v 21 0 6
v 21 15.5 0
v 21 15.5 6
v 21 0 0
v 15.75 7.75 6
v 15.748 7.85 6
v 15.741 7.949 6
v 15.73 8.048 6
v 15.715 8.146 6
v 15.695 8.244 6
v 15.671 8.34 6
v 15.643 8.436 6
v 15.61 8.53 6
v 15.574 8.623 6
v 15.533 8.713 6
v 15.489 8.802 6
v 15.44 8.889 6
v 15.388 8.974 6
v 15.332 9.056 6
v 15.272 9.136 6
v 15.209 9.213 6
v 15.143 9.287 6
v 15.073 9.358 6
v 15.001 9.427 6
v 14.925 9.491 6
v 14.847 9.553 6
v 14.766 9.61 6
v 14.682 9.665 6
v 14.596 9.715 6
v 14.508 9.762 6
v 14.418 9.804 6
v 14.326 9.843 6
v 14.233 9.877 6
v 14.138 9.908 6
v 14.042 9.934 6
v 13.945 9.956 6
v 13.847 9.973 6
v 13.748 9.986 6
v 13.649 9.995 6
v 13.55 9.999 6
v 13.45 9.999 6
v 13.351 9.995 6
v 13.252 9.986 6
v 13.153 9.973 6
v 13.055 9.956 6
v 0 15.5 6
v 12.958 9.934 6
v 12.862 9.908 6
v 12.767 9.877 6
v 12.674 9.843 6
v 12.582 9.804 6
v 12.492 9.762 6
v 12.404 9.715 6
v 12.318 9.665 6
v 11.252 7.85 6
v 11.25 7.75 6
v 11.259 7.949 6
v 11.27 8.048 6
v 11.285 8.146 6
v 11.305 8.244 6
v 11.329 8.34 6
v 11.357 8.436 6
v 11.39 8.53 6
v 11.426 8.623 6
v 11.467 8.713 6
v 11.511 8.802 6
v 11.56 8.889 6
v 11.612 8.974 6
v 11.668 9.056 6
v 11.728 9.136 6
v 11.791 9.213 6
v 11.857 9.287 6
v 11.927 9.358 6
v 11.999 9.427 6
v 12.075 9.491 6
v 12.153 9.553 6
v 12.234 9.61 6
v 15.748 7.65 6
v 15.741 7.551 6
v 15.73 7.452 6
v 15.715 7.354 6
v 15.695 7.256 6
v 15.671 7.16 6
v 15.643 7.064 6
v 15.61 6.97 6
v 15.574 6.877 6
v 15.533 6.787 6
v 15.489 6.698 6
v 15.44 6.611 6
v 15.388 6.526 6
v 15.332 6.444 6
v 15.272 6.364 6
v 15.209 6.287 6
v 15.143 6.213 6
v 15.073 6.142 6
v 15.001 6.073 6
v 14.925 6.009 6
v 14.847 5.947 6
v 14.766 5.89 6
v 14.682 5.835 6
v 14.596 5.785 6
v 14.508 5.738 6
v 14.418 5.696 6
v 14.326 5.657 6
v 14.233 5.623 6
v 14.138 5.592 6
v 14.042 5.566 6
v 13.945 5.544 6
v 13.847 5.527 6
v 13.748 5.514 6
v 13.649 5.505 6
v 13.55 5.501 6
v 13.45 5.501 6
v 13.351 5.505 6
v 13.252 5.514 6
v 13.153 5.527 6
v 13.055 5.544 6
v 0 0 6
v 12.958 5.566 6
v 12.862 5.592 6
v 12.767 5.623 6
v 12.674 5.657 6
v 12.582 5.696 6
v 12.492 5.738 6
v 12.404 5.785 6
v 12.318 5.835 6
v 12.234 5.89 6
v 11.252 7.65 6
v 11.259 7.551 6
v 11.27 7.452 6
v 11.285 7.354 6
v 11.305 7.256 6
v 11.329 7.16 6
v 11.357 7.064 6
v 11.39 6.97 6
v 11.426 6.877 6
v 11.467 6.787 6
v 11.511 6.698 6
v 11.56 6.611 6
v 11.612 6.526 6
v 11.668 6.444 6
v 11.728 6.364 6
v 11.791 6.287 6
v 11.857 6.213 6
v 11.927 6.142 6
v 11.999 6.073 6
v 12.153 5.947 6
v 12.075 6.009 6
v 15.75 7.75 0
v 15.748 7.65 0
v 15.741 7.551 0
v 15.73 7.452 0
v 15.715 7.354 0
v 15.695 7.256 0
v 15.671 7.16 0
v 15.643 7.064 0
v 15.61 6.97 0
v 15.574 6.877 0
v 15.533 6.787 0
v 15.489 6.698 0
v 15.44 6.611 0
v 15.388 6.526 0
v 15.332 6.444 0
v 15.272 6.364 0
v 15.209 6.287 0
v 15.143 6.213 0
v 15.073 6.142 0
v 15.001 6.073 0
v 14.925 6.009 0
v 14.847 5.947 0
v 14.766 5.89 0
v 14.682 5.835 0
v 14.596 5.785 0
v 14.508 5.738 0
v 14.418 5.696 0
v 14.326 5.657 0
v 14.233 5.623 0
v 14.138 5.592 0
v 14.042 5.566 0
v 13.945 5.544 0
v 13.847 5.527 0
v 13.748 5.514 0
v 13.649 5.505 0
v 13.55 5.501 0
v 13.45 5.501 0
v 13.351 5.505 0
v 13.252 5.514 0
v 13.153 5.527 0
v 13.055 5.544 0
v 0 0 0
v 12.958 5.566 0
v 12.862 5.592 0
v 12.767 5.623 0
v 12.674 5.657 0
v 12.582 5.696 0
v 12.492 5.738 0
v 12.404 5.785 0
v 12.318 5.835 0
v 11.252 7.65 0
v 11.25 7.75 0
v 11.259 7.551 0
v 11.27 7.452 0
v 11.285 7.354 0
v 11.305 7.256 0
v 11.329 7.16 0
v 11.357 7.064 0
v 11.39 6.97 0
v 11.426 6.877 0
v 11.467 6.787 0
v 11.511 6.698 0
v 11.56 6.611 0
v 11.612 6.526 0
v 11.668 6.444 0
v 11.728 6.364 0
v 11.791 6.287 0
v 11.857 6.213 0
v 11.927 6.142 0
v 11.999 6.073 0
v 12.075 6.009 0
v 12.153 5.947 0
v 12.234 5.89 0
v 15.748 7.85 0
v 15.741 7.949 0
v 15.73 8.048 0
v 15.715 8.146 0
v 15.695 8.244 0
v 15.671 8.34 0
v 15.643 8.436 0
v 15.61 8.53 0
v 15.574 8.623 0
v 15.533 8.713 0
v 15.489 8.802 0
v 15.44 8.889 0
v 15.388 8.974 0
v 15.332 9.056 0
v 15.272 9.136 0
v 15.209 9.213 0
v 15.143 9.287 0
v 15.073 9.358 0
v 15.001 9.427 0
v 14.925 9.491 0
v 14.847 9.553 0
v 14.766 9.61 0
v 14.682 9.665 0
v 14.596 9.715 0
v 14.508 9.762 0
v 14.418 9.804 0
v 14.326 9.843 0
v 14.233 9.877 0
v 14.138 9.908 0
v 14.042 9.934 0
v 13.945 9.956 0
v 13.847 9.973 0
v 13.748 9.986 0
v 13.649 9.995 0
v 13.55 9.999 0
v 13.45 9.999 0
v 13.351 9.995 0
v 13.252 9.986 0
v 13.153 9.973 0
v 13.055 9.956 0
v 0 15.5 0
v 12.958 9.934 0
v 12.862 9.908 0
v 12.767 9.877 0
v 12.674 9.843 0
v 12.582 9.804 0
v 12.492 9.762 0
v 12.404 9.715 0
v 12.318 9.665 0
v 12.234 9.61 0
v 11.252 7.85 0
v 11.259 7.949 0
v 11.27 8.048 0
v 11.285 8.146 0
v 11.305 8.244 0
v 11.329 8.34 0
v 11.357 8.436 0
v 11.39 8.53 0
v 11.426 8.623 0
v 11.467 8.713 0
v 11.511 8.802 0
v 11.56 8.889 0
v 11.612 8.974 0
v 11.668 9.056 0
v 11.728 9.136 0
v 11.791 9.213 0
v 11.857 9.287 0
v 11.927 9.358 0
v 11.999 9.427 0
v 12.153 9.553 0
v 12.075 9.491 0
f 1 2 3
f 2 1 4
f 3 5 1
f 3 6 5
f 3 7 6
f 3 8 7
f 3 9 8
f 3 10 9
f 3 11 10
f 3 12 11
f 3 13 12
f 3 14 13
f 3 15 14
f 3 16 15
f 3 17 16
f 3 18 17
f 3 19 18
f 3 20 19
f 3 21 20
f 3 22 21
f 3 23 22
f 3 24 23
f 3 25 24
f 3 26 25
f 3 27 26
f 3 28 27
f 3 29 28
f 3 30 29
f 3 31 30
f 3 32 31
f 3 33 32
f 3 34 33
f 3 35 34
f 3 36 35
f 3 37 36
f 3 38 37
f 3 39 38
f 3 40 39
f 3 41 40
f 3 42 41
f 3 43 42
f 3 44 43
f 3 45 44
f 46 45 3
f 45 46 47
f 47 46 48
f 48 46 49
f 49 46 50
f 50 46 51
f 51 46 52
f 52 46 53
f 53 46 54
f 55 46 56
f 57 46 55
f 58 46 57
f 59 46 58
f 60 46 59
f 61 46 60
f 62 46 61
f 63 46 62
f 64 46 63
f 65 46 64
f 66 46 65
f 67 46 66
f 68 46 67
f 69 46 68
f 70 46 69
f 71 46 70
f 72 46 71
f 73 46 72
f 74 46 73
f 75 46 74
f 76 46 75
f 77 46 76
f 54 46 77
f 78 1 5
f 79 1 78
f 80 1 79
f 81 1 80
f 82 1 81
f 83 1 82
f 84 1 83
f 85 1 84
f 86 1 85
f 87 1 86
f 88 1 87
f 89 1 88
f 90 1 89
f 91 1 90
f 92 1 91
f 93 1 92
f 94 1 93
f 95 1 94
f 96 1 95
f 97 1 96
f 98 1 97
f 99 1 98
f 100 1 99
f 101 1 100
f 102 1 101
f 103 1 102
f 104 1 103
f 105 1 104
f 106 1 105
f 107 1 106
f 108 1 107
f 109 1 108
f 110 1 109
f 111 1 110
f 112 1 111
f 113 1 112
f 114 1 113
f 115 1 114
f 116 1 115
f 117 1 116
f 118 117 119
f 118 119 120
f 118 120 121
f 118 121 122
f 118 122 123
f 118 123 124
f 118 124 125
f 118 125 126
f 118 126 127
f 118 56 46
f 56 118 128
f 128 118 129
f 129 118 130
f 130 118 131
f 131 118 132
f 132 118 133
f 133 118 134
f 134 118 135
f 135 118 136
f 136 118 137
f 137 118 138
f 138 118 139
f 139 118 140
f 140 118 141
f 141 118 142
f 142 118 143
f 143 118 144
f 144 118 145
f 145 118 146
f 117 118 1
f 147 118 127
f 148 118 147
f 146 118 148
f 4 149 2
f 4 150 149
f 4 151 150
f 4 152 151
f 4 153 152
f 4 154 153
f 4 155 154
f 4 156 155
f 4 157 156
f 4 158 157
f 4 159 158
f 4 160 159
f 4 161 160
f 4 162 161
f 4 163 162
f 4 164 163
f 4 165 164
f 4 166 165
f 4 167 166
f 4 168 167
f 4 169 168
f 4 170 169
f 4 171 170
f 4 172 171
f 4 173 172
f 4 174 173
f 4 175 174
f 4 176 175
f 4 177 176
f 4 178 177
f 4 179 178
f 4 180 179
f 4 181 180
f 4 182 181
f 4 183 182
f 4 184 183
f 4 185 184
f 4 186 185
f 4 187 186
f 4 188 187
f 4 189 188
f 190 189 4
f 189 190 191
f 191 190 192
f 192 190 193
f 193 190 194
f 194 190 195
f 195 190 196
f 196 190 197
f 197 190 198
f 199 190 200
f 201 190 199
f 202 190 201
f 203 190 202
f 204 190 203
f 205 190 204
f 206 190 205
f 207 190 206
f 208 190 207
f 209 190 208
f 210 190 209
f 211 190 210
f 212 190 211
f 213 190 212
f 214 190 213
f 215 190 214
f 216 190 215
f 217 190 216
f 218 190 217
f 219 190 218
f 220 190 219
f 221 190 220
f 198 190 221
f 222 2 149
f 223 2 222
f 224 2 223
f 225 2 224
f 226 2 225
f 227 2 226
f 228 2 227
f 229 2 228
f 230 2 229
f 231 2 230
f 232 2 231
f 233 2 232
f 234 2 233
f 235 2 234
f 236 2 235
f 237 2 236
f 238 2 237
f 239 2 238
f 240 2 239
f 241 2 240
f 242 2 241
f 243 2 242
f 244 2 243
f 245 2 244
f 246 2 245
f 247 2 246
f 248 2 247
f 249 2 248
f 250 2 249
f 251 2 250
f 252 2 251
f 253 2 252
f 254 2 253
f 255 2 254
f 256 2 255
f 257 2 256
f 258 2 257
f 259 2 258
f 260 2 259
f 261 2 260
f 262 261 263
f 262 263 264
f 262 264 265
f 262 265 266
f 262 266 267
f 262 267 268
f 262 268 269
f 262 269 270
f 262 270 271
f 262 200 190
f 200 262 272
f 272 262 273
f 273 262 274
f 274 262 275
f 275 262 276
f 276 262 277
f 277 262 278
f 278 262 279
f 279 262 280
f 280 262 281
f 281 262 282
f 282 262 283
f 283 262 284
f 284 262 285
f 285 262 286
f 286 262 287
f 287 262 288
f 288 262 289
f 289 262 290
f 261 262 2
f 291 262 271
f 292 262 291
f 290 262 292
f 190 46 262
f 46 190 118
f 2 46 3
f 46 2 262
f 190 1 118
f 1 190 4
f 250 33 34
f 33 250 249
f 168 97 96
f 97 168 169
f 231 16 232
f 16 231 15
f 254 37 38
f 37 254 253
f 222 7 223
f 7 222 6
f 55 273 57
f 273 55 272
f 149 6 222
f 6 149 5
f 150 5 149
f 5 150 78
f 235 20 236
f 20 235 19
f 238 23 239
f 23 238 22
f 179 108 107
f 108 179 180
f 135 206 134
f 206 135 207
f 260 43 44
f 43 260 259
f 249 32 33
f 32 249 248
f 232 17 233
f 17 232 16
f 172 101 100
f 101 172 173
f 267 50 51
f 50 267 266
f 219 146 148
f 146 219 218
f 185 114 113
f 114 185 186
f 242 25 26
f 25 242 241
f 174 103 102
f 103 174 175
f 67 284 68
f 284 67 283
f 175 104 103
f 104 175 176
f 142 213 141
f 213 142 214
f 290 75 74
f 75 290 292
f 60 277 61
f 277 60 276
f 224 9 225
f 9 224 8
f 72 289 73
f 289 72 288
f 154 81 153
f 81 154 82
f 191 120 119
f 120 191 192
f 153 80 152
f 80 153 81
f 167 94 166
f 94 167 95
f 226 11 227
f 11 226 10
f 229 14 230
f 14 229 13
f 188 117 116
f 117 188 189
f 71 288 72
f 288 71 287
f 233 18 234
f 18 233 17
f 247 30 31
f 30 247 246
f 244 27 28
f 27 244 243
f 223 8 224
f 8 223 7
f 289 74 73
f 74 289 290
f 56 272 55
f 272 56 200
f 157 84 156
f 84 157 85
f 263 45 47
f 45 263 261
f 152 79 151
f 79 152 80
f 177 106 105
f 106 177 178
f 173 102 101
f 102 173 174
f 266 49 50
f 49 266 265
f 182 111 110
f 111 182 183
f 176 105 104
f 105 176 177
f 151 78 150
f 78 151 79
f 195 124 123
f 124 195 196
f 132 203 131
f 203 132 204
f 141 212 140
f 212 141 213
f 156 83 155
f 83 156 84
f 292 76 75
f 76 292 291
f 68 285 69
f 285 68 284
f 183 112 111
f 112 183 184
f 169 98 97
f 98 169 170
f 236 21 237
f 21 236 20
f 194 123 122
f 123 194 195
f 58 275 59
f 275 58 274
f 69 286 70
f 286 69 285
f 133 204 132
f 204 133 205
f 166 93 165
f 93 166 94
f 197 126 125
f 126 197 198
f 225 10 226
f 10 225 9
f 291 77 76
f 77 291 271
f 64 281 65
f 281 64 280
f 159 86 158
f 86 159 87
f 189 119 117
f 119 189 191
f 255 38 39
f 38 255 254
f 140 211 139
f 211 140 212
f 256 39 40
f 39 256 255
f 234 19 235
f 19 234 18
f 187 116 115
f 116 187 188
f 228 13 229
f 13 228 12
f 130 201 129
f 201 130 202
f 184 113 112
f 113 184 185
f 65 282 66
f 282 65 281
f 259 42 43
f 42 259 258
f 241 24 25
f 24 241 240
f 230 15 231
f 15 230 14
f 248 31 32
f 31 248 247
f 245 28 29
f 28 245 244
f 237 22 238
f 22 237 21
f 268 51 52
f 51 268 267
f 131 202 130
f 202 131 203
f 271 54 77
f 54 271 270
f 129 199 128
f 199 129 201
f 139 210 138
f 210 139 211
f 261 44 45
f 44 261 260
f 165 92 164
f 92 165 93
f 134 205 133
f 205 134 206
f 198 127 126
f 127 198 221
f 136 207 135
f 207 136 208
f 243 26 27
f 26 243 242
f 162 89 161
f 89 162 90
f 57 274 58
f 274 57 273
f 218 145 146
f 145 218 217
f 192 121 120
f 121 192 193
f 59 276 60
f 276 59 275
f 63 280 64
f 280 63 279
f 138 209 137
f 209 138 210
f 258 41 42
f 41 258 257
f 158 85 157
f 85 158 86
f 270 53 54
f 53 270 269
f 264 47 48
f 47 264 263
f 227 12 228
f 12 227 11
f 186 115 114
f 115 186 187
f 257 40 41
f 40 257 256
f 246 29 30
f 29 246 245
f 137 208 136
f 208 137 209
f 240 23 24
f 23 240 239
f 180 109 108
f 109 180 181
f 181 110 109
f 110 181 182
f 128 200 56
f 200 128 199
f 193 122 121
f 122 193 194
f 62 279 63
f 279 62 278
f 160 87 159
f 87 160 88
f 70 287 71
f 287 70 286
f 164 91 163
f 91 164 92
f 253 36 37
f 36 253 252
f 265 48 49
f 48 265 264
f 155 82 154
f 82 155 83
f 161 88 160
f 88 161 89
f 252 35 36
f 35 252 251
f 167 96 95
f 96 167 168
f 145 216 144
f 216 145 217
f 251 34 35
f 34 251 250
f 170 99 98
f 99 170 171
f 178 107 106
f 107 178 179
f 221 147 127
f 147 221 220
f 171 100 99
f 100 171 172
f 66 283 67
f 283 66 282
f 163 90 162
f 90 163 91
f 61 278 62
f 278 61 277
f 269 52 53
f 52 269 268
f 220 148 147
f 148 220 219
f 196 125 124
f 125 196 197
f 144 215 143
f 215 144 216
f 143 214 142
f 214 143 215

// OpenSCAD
// Stair Gate Latch

eps = 0.001;
$fa = 1.0;
$fs = 0.1;

item_w = 21;
item_h = 6;
item_d = 15.5;

hole_radius = 9/2;
insert_origin_x = item_w - (hole_radius + 3);
insert_origin_y = item_d / 2;
insert_radius = 4.5/2;

// Main
difference() {
  union () {
    cube([item_w, item_d, item_h]);
  }
  translate([insert_origin_x, insert_origin_y, -eps])
    cylinder(h=item_h + 2 * eps, r=insert_radius);

}
